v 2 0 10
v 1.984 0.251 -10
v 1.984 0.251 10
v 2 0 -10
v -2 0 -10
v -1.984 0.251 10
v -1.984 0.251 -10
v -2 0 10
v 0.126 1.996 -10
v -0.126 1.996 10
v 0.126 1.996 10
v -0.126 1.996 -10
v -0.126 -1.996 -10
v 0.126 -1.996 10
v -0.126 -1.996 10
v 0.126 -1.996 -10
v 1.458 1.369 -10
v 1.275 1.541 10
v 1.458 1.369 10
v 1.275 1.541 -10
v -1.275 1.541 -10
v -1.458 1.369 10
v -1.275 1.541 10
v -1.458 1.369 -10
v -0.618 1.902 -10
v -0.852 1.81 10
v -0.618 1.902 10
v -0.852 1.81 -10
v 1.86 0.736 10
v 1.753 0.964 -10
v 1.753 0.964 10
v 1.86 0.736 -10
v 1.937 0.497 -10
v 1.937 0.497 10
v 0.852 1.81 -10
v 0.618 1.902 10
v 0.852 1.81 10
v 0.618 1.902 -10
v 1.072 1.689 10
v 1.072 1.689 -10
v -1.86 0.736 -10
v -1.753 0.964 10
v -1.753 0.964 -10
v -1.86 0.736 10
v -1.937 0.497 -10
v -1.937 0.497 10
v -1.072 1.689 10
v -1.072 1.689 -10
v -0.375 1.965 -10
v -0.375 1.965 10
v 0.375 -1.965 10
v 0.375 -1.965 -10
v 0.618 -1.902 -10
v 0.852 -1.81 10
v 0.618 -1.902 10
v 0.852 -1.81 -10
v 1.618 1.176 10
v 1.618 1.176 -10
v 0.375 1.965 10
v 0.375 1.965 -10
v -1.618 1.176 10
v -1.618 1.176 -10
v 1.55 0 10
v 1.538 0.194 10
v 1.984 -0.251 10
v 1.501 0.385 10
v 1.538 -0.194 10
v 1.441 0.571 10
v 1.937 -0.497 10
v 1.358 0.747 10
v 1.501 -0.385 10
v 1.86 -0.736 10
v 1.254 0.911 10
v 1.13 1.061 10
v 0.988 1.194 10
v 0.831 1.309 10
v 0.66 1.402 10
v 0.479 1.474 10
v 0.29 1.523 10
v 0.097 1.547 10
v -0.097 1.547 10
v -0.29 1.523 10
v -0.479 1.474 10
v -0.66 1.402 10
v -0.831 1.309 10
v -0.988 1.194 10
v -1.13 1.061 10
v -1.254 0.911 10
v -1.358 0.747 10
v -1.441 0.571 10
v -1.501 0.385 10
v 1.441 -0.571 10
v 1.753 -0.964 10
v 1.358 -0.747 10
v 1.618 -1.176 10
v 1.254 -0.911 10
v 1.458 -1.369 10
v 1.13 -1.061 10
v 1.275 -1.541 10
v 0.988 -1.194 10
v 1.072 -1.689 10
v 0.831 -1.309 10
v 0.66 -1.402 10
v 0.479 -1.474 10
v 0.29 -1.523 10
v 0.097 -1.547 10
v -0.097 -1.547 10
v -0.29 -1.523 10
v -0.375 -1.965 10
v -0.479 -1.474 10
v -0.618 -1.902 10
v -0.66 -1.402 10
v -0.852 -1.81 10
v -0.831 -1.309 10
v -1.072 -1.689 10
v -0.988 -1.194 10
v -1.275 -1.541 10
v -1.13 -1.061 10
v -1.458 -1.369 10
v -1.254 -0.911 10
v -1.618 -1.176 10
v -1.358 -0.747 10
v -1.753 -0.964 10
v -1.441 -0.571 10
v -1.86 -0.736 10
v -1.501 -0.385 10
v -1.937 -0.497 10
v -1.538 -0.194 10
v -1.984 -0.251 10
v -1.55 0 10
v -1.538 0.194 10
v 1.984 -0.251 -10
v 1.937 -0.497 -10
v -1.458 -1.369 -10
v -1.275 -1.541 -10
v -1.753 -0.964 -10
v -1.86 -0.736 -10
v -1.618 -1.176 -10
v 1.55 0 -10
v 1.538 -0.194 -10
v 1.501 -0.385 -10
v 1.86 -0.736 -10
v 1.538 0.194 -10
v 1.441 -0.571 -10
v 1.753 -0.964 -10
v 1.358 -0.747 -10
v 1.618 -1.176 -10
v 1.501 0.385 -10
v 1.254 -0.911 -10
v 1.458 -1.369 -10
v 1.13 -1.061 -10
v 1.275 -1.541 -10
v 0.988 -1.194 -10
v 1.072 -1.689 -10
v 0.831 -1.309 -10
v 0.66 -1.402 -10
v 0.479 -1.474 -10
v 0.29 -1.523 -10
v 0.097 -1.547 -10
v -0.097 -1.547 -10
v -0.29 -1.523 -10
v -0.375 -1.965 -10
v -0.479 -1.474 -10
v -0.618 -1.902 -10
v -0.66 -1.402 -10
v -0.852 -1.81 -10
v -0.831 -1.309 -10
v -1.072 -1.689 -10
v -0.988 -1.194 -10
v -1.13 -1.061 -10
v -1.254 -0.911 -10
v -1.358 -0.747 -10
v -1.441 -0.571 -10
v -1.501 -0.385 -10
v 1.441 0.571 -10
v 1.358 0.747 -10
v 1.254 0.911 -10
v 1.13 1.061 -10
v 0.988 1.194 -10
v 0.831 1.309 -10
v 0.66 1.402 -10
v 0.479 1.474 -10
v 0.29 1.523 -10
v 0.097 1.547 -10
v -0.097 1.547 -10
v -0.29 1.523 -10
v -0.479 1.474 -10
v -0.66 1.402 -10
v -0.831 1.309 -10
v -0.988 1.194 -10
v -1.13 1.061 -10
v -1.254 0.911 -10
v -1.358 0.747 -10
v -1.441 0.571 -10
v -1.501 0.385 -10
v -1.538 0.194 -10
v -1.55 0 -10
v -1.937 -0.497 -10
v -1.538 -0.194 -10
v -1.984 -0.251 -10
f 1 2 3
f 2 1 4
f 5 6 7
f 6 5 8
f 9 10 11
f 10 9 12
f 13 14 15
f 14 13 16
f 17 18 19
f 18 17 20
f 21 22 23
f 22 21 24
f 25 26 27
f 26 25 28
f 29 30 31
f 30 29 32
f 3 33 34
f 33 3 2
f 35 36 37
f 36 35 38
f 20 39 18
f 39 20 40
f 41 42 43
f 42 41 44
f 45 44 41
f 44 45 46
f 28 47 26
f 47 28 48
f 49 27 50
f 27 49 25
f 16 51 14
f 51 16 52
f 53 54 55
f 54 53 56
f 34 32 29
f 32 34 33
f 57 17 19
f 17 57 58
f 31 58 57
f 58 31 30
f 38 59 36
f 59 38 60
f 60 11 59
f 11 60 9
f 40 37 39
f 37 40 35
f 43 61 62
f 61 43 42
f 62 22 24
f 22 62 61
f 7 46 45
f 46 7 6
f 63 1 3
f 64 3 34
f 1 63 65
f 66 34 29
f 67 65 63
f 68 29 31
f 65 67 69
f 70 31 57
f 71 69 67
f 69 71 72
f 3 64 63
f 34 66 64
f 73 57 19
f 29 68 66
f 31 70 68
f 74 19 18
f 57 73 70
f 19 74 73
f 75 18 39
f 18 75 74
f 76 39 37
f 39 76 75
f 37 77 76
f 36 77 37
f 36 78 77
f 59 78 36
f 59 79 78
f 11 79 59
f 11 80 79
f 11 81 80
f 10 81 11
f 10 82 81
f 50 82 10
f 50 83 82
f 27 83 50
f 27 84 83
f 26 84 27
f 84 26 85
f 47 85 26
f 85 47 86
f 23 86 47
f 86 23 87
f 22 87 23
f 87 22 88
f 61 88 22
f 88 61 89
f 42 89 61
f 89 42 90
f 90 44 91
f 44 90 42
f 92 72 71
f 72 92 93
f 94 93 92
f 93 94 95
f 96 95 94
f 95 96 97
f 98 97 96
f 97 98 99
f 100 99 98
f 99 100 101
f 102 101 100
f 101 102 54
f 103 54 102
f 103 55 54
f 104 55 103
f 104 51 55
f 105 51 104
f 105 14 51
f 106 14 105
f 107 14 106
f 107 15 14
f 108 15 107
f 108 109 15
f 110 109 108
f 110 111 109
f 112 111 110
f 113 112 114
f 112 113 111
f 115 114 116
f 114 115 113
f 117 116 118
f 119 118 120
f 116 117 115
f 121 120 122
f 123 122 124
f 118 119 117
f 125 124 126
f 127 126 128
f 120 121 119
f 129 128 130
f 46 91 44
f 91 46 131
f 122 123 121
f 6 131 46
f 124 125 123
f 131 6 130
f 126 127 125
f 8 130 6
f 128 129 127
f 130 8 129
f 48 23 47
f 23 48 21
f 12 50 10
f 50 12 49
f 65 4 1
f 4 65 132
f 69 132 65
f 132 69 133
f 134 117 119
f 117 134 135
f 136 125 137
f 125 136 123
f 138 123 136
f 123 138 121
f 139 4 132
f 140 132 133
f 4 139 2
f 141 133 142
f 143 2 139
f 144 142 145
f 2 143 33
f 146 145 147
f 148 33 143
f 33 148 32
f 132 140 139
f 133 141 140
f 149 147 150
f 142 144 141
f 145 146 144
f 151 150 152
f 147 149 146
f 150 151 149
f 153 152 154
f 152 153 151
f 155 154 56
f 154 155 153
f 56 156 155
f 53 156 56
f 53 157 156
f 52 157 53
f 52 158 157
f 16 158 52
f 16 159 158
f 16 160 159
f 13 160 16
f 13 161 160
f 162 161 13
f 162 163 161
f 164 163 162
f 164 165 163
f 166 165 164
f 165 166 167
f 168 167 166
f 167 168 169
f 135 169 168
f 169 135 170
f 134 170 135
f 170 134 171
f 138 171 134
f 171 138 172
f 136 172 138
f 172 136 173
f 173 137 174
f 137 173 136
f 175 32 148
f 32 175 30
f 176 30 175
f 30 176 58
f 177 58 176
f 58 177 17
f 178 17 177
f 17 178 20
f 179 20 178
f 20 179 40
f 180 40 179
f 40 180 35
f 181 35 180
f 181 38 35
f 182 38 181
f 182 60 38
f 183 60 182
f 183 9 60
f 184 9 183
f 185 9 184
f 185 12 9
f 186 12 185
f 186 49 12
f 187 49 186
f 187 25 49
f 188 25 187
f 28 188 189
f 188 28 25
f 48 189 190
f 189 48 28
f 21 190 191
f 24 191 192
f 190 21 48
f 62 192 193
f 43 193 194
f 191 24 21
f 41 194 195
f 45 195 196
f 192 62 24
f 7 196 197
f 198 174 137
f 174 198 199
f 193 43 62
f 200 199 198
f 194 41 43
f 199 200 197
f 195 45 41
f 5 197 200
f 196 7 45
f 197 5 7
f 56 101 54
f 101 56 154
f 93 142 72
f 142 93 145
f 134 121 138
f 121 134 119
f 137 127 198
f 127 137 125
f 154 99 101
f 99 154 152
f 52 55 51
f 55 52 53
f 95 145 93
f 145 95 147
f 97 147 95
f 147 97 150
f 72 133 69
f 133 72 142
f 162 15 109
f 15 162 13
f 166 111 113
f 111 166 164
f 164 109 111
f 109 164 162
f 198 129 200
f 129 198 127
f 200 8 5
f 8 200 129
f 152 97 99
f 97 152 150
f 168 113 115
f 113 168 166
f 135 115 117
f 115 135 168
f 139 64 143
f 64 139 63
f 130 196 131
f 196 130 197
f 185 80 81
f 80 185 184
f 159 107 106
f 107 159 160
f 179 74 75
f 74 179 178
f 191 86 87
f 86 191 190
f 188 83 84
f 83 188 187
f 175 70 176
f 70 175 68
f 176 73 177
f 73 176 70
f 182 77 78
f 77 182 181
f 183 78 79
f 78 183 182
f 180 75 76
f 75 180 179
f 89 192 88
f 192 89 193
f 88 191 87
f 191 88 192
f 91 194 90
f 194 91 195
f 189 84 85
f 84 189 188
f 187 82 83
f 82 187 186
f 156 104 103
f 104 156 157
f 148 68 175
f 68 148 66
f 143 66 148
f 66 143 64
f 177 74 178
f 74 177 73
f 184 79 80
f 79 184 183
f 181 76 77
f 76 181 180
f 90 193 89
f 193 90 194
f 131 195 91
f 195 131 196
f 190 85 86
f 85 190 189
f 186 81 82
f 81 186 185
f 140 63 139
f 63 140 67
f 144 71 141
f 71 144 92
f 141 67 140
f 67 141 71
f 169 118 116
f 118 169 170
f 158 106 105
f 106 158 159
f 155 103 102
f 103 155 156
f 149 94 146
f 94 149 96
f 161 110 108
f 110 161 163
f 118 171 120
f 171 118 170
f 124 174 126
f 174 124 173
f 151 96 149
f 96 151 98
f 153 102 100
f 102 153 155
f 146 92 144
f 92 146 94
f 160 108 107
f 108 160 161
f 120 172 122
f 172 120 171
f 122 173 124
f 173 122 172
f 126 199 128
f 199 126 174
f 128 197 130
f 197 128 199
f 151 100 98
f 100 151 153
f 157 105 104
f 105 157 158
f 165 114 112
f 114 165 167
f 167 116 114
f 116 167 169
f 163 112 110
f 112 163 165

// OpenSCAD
$fn = 50;


difference() {
	union() {
		translate(v = [0, 0, -10.0000000000]) {
			cylinder(h = 20, r = 2.0000000000);
		}
	}
	union() {
		translate(v = [0, 0, -100.0000000000]) {
			cylinder(h = 200, r = 1.5500000000);
		}
	}
}
